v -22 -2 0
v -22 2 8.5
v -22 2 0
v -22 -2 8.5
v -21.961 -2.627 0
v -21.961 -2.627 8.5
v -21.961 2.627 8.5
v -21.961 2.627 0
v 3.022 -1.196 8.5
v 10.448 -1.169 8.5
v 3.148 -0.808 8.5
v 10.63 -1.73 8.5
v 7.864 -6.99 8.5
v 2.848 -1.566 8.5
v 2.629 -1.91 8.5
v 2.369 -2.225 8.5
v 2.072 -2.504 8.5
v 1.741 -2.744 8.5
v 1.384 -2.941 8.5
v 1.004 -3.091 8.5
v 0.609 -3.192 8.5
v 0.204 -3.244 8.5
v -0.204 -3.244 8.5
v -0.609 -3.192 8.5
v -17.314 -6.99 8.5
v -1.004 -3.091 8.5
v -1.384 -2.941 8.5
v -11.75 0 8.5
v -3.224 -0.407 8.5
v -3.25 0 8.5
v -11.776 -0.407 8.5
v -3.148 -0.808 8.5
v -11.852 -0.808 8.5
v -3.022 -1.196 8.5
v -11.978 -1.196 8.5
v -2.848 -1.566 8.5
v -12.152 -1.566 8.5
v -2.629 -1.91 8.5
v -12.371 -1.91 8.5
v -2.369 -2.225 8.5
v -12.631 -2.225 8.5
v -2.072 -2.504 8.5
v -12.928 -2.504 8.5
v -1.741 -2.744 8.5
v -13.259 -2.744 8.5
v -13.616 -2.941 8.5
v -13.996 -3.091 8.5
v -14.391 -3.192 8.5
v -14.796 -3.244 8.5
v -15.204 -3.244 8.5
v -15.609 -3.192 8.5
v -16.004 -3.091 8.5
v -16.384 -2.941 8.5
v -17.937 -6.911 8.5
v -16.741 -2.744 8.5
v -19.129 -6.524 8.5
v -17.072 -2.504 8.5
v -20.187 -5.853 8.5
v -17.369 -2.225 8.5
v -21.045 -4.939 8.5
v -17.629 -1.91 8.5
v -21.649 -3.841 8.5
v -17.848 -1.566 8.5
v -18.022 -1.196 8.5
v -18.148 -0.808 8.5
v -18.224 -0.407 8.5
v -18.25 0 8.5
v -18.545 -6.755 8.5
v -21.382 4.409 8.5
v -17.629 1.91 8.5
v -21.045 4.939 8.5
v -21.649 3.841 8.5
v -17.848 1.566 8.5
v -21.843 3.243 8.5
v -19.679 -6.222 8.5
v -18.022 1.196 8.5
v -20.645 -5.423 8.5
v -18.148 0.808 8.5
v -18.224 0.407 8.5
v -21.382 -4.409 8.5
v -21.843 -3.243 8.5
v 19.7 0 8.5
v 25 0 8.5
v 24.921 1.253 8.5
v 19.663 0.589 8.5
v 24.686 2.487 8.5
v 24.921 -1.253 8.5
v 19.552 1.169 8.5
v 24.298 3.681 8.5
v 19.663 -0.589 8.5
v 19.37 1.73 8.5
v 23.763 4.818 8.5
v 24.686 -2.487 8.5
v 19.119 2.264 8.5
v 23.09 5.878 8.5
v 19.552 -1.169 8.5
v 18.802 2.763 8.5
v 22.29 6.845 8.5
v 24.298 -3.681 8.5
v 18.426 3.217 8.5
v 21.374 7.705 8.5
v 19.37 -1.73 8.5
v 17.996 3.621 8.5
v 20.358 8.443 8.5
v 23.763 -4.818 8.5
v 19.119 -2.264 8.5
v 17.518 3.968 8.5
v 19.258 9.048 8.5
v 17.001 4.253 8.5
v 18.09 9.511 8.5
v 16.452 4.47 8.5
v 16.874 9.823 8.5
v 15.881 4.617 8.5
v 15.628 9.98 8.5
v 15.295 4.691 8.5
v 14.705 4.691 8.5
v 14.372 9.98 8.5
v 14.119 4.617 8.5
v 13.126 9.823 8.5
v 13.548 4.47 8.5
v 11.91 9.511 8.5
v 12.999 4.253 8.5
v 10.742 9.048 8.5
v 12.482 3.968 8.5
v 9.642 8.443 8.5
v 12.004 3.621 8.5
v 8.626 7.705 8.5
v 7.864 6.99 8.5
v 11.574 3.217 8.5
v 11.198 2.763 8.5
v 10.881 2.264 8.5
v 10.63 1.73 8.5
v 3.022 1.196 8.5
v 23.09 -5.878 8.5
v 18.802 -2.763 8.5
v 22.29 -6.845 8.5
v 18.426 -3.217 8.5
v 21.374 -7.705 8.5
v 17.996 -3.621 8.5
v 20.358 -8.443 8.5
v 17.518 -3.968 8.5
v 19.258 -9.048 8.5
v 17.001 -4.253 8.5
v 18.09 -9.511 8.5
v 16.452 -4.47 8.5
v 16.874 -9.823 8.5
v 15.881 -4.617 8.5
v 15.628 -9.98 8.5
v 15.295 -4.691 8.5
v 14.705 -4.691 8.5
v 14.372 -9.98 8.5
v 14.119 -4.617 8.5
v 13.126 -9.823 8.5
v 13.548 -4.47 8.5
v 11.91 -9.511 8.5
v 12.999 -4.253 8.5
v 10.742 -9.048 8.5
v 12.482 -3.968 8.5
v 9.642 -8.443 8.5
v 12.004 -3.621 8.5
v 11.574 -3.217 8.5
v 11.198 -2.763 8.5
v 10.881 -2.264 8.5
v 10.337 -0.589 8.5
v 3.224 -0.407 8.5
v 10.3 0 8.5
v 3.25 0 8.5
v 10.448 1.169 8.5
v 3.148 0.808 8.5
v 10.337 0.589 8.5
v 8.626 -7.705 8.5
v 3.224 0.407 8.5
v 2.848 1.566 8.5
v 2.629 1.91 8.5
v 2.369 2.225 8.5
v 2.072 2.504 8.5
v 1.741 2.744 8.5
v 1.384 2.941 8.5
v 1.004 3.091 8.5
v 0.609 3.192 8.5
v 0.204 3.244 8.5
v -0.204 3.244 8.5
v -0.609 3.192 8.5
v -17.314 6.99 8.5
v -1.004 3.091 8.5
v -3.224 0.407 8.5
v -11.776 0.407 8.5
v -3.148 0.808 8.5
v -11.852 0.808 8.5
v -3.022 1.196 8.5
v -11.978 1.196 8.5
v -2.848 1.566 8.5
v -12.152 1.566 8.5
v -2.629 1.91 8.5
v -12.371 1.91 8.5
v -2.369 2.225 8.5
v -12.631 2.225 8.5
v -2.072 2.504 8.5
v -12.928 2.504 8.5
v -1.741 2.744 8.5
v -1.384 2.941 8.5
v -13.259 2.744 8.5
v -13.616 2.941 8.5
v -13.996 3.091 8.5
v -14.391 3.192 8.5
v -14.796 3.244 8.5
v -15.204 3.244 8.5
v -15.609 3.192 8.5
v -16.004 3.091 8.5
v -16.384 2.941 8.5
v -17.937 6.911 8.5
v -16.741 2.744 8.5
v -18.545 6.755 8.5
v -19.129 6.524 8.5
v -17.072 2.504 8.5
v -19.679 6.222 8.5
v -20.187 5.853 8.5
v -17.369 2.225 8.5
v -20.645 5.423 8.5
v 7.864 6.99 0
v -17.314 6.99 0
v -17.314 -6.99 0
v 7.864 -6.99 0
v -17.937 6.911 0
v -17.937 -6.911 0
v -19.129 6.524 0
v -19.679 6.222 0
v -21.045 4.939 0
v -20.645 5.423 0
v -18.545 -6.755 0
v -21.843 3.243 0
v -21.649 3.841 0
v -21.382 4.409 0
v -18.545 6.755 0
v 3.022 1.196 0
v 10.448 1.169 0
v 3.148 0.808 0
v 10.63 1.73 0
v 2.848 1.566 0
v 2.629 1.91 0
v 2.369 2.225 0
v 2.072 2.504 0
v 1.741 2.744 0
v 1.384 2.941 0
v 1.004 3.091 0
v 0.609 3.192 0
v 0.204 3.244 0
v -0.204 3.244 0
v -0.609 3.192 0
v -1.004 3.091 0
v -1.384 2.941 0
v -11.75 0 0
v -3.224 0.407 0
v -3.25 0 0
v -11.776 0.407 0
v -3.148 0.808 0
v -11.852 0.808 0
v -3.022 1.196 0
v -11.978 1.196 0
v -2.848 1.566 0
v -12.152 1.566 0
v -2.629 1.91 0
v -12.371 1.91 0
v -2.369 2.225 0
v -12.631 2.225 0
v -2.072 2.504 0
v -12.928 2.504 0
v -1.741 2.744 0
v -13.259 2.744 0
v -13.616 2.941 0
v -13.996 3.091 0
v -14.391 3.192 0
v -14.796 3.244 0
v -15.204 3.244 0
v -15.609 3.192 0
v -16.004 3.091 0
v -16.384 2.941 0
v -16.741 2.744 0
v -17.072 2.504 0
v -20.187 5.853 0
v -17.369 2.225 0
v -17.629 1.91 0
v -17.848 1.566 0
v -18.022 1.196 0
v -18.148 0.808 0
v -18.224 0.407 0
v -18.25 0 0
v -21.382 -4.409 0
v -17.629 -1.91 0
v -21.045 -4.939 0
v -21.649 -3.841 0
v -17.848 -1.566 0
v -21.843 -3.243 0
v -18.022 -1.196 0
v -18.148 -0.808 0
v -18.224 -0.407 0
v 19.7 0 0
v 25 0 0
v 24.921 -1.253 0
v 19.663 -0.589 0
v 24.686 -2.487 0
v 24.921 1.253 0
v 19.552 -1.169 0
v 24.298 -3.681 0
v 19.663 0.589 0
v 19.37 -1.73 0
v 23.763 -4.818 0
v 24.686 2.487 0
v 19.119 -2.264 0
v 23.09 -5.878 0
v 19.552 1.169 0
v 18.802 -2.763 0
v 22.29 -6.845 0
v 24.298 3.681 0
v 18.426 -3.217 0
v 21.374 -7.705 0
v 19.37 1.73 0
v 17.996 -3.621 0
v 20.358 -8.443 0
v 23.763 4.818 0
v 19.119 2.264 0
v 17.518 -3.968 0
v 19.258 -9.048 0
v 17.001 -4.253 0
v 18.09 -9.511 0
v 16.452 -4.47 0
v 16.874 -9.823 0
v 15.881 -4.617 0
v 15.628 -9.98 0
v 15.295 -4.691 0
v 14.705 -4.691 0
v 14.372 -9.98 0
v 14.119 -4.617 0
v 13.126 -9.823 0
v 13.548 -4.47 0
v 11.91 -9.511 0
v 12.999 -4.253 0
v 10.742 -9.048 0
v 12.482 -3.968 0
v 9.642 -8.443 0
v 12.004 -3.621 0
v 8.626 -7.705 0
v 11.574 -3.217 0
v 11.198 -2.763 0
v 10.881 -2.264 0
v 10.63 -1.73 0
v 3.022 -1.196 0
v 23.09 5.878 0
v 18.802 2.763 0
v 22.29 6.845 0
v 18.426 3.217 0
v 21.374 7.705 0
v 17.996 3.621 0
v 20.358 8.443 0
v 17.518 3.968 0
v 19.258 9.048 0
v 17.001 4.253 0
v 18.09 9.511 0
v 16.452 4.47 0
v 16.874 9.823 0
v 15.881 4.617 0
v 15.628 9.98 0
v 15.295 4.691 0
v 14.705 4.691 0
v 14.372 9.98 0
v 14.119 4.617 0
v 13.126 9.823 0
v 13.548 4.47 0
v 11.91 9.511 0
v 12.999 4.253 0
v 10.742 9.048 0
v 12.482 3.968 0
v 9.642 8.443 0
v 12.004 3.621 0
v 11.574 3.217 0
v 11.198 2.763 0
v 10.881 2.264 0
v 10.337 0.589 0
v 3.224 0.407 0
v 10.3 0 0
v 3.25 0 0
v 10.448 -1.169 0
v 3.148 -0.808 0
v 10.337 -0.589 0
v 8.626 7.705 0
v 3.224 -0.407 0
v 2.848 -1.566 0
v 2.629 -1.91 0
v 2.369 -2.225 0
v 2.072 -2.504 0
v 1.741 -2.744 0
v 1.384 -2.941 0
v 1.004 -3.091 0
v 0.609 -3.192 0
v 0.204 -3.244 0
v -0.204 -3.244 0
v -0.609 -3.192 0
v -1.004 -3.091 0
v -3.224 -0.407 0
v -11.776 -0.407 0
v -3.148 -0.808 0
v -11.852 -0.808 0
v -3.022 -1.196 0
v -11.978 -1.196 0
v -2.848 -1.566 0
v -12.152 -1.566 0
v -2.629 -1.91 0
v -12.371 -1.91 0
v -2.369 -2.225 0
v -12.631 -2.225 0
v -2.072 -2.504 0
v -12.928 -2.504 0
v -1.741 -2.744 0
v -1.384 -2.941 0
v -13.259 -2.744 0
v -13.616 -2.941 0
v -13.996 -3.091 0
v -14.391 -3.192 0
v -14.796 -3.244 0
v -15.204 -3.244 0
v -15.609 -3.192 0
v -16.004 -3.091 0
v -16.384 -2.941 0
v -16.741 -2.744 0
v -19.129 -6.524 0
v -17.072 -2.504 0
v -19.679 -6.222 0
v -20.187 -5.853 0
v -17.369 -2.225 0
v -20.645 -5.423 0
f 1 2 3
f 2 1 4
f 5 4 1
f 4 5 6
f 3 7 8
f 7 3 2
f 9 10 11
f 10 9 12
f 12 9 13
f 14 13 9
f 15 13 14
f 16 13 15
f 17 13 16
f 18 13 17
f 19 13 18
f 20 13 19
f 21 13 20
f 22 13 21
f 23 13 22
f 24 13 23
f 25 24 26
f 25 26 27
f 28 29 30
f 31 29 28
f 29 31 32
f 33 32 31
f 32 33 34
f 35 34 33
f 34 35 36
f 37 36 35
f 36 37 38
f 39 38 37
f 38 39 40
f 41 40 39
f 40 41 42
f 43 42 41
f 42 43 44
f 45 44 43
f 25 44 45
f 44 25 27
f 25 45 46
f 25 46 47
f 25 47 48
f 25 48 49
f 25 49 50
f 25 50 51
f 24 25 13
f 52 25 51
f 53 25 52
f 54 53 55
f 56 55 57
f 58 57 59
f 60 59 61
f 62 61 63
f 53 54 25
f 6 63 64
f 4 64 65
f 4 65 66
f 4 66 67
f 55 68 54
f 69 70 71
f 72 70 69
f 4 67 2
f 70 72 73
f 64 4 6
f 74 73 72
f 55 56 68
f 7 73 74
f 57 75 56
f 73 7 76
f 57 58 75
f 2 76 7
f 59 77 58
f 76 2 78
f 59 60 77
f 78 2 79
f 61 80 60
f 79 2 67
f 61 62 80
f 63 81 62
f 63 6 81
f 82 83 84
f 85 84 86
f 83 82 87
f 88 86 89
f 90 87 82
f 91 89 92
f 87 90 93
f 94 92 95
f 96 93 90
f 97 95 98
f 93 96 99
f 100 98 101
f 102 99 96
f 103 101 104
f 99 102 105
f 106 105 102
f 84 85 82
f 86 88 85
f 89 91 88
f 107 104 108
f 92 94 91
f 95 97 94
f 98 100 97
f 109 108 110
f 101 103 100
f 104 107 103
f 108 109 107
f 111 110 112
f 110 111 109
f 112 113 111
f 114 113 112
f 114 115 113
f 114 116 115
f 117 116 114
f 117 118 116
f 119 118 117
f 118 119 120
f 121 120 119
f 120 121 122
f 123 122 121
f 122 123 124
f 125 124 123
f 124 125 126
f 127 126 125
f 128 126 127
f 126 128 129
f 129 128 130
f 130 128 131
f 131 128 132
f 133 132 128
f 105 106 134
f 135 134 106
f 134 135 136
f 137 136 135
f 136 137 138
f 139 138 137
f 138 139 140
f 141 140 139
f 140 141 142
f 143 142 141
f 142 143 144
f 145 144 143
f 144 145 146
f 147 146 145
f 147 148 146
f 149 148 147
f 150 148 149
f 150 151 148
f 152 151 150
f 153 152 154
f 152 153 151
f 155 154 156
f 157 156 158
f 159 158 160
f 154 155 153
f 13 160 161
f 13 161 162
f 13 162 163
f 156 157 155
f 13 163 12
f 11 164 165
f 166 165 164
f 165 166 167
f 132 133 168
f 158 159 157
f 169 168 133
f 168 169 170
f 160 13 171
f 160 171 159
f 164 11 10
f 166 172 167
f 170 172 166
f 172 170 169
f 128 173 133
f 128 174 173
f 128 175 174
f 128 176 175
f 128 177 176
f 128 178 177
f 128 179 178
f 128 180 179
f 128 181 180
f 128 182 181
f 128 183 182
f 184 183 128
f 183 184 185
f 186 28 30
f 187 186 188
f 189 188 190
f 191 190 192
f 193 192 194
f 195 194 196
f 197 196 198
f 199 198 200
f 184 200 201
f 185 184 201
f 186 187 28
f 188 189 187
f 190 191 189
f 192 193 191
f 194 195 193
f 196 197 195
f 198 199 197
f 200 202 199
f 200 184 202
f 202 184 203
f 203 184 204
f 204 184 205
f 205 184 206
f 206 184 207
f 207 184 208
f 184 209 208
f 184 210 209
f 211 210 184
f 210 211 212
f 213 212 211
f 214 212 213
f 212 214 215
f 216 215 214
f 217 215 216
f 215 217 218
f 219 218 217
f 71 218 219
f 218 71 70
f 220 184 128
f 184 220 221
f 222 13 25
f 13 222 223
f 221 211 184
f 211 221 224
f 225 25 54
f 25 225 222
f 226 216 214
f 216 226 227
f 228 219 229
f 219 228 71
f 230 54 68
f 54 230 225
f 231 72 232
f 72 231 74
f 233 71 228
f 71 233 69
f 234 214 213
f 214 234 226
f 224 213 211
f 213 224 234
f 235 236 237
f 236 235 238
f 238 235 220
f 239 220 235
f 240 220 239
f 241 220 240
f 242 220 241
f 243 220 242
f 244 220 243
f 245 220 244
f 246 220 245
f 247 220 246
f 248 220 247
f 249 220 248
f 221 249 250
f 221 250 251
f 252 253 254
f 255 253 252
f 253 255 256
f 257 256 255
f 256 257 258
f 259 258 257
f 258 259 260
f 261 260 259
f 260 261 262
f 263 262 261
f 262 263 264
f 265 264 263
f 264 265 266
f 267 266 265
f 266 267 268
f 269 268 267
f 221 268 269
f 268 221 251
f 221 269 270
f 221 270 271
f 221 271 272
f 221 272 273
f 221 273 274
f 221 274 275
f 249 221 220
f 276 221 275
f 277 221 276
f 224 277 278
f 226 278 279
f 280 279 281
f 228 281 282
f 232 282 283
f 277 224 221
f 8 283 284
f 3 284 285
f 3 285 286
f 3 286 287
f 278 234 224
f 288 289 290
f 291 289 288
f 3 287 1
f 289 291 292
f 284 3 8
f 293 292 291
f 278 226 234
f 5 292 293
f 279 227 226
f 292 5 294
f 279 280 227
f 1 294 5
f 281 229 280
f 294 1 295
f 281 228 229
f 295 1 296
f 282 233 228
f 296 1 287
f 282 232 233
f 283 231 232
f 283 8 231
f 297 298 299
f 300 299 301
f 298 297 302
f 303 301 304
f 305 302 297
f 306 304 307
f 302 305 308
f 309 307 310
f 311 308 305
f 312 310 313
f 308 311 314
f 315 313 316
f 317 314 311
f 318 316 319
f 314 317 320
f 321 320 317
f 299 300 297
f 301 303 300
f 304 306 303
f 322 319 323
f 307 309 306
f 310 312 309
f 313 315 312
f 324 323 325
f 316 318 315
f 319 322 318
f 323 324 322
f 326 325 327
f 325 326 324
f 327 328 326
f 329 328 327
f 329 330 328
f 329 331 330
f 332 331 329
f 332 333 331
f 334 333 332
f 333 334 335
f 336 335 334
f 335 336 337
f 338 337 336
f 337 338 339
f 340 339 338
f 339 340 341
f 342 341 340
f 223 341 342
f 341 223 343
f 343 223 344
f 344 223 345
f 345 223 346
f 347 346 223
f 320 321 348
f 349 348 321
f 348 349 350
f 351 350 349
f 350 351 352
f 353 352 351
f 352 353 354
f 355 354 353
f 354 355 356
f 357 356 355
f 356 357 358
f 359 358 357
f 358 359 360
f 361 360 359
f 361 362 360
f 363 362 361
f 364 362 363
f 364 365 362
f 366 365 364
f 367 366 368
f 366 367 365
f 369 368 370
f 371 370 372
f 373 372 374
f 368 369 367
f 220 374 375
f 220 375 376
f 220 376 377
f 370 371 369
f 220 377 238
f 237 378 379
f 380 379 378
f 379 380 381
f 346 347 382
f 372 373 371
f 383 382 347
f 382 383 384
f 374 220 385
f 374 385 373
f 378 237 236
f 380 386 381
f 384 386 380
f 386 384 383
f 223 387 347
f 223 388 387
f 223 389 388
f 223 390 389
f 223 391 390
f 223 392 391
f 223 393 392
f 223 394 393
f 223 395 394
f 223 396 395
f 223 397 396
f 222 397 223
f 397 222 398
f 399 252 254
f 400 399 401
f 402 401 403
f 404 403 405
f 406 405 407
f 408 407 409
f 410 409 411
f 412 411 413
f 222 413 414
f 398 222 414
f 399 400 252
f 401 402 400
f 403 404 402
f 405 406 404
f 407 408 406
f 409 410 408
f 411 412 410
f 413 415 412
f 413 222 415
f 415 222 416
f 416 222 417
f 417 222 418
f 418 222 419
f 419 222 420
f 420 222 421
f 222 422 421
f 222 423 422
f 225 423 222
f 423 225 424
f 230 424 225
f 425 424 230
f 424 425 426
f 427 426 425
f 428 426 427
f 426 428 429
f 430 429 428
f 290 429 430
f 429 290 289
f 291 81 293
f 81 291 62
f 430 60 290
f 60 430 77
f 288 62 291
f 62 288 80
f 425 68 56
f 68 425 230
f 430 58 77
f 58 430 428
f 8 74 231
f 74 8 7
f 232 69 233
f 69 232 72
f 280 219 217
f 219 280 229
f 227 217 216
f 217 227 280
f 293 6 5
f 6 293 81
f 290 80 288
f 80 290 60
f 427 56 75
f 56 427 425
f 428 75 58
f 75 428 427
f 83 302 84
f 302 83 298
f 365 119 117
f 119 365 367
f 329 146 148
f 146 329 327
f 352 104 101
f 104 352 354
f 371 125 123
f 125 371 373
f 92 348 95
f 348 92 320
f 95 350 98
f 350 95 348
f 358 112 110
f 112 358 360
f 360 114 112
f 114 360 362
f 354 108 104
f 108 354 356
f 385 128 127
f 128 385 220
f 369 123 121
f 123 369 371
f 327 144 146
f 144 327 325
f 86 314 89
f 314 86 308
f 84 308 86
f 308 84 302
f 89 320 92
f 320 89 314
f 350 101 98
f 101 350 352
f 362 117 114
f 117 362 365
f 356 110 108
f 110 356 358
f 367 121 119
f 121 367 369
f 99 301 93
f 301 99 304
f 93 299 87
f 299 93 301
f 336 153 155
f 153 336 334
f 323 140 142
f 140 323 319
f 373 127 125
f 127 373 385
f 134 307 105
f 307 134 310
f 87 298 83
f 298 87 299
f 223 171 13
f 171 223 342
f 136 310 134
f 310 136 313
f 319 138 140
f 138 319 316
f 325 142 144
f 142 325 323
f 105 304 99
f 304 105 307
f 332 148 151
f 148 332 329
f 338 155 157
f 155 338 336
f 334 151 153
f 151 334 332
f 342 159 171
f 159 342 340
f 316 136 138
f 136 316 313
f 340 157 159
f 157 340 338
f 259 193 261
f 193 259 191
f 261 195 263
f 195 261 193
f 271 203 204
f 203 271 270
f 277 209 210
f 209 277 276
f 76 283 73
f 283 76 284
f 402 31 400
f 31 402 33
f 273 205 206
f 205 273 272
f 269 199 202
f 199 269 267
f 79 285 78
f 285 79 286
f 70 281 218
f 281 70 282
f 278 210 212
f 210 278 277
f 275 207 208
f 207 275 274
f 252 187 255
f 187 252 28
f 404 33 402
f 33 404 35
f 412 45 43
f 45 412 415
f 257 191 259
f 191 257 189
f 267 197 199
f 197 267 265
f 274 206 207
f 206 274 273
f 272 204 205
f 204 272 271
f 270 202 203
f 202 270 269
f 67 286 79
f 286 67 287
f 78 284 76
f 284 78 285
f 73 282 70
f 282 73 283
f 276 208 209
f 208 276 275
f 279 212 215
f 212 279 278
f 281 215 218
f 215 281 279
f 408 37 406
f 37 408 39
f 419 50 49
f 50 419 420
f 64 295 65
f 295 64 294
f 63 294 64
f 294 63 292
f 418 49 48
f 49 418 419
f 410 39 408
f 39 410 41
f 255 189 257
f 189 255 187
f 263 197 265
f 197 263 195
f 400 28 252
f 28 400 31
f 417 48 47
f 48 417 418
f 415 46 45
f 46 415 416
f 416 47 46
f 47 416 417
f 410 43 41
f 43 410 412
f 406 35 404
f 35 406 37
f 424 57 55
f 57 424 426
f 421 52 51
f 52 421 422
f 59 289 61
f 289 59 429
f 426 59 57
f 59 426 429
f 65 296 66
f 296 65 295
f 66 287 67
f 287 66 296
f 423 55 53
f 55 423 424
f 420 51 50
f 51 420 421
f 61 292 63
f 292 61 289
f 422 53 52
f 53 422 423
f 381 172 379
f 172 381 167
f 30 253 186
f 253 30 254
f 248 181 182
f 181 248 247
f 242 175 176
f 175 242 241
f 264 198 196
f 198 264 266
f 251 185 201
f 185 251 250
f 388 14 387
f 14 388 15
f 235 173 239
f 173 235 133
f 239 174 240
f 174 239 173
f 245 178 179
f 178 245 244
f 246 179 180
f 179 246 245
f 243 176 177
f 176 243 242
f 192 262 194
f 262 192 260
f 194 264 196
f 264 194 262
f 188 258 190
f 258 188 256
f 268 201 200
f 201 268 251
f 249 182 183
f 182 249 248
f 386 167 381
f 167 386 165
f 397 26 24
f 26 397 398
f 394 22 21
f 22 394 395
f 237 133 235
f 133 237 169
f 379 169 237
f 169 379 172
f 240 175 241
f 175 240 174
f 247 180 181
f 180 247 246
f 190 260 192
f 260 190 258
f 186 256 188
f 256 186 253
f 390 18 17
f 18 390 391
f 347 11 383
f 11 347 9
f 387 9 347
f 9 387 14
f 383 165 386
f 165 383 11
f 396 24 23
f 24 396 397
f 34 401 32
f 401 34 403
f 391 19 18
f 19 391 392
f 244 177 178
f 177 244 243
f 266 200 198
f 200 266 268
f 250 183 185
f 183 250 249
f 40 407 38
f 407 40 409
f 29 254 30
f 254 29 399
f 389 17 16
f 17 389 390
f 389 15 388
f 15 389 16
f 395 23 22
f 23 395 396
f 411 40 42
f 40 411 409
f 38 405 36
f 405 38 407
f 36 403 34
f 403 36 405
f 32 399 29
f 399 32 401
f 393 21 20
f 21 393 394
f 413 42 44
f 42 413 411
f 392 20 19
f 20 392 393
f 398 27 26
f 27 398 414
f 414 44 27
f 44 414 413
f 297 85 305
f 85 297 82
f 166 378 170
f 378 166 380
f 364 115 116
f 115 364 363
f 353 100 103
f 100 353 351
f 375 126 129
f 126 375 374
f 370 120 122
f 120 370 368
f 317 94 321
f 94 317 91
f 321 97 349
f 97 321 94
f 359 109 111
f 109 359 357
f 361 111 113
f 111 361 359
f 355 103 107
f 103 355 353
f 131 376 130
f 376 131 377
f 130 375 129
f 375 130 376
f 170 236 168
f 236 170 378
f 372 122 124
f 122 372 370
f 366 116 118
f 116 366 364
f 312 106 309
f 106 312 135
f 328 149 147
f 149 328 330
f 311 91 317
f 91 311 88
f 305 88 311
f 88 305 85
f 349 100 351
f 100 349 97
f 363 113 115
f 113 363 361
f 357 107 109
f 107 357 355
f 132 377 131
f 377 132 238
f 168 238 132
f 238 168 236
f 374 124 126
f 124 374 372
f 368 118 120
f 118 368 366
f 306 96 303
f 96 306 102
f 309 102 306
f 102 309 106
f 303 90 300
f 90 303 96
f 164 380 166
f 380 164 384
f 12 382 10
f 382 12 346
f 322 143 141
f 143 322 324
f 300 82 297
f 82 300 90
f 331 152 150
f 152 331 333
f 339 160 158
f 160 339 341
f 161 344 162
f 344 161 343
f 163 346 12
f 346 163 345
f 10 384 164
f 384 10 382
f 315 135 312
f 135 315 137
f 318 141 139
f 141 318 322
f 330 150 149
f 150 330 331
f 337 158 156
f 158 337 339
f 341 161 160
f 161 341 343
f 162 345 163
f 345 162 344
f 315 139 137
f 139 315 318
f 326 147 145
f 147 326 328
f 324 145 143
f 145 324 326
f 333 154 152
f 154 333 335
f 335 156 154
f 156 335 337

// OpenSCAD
$fn = 50;


difference() {
	union() {
		translate(v = [0, 0, 0]) {
			rotate(a = [0, 0, 0]) {
				hull() {
					translate(v = [-17.0000000000, 2.0000000000, 0]) {
						rotate(a = [0, 0, 0]) {
							translate(v = [0, 0, 0]) {
								rotate(a = [0, 0, 0]) {
									cylinder(h = 8.5000000000, r = 5);
								}
							}
						}
					}
					translate(v = [17.0000000000, 2.0000000000, 0]) {
						rotate(a = [0, 0, 0]) {
							translate(v = [0, 0, 0]) {
								rotate(a = [0, 0, 0]) {
									cylinder(h = 8.5000000000, r = 5);
								}
							}
						}
					}
					translate(v = [-17.0000000000, -2.0000000000, 0]) {
						rotate(a = [0, 0, 0]) {
							translate(v = [0, 0, 0]) {
								rotate(a = [0, 0, 0]) {
									cylinder(h = 8.5000000000, r = 5);
								}
							}
						}
					}
					translate(v = [17.0000000000, -2.0000000000, 0]) {
						rotate(a = [0, 0, 0]) {
							translate(v = [0, 0, 0]) {
								rotate(a = [0, 0, 0]) {
									cylinder(h = 8.5000000000, r = 5);
								}
							}
						}
					}
				}
			}
		}
		translate(v = [15.0000000000, 0, 0.0000000000]) {
			rotate(a = [0, 0, 0]) {
				cylinder(h = 8.5000000000, r = 10.0000000000);
			}
		}
	}
	union() {
		translate(v = [-15.0000000000, 0.0000000000, 0]) {
			rotate(a = [0, 0, 0]) {
				translate(v = [0, 0, -50]) {
					rotate(a = [0, 0, 0]) {
						cylinder(h = 100, r = 3.2500000000);
					}
				}
			}
		}
		translate(v = [0.0000000000, 0.0000000000, 0]) {
			rotate(a = [0, 0, 0]) {
				translate(v = [0, 0, -50]) {
					rotate(a = [0, 0, 0]) {
						cylinder(h = 100, r = 3.2500000000);
					}
				}
			}
		}
		translate(v = [15.0000000000, 0.0000000000, 0]) {
			rotate(a = [0, 0, 0]) {
				translate(v = [0, 0, -50]) {
					rotate(a = [0, 0, 0]) {
						cylinder(h = 100, r = 3.2500000000);
					}
				}
			}
		}
		translate(v = [15.0000000000, 0, -125.0000000000]) {
			rotate(a = [0, 0, 0]) {
				cylinder(h = 250, r = 4.7000000000);
			}
		}
	}
}
